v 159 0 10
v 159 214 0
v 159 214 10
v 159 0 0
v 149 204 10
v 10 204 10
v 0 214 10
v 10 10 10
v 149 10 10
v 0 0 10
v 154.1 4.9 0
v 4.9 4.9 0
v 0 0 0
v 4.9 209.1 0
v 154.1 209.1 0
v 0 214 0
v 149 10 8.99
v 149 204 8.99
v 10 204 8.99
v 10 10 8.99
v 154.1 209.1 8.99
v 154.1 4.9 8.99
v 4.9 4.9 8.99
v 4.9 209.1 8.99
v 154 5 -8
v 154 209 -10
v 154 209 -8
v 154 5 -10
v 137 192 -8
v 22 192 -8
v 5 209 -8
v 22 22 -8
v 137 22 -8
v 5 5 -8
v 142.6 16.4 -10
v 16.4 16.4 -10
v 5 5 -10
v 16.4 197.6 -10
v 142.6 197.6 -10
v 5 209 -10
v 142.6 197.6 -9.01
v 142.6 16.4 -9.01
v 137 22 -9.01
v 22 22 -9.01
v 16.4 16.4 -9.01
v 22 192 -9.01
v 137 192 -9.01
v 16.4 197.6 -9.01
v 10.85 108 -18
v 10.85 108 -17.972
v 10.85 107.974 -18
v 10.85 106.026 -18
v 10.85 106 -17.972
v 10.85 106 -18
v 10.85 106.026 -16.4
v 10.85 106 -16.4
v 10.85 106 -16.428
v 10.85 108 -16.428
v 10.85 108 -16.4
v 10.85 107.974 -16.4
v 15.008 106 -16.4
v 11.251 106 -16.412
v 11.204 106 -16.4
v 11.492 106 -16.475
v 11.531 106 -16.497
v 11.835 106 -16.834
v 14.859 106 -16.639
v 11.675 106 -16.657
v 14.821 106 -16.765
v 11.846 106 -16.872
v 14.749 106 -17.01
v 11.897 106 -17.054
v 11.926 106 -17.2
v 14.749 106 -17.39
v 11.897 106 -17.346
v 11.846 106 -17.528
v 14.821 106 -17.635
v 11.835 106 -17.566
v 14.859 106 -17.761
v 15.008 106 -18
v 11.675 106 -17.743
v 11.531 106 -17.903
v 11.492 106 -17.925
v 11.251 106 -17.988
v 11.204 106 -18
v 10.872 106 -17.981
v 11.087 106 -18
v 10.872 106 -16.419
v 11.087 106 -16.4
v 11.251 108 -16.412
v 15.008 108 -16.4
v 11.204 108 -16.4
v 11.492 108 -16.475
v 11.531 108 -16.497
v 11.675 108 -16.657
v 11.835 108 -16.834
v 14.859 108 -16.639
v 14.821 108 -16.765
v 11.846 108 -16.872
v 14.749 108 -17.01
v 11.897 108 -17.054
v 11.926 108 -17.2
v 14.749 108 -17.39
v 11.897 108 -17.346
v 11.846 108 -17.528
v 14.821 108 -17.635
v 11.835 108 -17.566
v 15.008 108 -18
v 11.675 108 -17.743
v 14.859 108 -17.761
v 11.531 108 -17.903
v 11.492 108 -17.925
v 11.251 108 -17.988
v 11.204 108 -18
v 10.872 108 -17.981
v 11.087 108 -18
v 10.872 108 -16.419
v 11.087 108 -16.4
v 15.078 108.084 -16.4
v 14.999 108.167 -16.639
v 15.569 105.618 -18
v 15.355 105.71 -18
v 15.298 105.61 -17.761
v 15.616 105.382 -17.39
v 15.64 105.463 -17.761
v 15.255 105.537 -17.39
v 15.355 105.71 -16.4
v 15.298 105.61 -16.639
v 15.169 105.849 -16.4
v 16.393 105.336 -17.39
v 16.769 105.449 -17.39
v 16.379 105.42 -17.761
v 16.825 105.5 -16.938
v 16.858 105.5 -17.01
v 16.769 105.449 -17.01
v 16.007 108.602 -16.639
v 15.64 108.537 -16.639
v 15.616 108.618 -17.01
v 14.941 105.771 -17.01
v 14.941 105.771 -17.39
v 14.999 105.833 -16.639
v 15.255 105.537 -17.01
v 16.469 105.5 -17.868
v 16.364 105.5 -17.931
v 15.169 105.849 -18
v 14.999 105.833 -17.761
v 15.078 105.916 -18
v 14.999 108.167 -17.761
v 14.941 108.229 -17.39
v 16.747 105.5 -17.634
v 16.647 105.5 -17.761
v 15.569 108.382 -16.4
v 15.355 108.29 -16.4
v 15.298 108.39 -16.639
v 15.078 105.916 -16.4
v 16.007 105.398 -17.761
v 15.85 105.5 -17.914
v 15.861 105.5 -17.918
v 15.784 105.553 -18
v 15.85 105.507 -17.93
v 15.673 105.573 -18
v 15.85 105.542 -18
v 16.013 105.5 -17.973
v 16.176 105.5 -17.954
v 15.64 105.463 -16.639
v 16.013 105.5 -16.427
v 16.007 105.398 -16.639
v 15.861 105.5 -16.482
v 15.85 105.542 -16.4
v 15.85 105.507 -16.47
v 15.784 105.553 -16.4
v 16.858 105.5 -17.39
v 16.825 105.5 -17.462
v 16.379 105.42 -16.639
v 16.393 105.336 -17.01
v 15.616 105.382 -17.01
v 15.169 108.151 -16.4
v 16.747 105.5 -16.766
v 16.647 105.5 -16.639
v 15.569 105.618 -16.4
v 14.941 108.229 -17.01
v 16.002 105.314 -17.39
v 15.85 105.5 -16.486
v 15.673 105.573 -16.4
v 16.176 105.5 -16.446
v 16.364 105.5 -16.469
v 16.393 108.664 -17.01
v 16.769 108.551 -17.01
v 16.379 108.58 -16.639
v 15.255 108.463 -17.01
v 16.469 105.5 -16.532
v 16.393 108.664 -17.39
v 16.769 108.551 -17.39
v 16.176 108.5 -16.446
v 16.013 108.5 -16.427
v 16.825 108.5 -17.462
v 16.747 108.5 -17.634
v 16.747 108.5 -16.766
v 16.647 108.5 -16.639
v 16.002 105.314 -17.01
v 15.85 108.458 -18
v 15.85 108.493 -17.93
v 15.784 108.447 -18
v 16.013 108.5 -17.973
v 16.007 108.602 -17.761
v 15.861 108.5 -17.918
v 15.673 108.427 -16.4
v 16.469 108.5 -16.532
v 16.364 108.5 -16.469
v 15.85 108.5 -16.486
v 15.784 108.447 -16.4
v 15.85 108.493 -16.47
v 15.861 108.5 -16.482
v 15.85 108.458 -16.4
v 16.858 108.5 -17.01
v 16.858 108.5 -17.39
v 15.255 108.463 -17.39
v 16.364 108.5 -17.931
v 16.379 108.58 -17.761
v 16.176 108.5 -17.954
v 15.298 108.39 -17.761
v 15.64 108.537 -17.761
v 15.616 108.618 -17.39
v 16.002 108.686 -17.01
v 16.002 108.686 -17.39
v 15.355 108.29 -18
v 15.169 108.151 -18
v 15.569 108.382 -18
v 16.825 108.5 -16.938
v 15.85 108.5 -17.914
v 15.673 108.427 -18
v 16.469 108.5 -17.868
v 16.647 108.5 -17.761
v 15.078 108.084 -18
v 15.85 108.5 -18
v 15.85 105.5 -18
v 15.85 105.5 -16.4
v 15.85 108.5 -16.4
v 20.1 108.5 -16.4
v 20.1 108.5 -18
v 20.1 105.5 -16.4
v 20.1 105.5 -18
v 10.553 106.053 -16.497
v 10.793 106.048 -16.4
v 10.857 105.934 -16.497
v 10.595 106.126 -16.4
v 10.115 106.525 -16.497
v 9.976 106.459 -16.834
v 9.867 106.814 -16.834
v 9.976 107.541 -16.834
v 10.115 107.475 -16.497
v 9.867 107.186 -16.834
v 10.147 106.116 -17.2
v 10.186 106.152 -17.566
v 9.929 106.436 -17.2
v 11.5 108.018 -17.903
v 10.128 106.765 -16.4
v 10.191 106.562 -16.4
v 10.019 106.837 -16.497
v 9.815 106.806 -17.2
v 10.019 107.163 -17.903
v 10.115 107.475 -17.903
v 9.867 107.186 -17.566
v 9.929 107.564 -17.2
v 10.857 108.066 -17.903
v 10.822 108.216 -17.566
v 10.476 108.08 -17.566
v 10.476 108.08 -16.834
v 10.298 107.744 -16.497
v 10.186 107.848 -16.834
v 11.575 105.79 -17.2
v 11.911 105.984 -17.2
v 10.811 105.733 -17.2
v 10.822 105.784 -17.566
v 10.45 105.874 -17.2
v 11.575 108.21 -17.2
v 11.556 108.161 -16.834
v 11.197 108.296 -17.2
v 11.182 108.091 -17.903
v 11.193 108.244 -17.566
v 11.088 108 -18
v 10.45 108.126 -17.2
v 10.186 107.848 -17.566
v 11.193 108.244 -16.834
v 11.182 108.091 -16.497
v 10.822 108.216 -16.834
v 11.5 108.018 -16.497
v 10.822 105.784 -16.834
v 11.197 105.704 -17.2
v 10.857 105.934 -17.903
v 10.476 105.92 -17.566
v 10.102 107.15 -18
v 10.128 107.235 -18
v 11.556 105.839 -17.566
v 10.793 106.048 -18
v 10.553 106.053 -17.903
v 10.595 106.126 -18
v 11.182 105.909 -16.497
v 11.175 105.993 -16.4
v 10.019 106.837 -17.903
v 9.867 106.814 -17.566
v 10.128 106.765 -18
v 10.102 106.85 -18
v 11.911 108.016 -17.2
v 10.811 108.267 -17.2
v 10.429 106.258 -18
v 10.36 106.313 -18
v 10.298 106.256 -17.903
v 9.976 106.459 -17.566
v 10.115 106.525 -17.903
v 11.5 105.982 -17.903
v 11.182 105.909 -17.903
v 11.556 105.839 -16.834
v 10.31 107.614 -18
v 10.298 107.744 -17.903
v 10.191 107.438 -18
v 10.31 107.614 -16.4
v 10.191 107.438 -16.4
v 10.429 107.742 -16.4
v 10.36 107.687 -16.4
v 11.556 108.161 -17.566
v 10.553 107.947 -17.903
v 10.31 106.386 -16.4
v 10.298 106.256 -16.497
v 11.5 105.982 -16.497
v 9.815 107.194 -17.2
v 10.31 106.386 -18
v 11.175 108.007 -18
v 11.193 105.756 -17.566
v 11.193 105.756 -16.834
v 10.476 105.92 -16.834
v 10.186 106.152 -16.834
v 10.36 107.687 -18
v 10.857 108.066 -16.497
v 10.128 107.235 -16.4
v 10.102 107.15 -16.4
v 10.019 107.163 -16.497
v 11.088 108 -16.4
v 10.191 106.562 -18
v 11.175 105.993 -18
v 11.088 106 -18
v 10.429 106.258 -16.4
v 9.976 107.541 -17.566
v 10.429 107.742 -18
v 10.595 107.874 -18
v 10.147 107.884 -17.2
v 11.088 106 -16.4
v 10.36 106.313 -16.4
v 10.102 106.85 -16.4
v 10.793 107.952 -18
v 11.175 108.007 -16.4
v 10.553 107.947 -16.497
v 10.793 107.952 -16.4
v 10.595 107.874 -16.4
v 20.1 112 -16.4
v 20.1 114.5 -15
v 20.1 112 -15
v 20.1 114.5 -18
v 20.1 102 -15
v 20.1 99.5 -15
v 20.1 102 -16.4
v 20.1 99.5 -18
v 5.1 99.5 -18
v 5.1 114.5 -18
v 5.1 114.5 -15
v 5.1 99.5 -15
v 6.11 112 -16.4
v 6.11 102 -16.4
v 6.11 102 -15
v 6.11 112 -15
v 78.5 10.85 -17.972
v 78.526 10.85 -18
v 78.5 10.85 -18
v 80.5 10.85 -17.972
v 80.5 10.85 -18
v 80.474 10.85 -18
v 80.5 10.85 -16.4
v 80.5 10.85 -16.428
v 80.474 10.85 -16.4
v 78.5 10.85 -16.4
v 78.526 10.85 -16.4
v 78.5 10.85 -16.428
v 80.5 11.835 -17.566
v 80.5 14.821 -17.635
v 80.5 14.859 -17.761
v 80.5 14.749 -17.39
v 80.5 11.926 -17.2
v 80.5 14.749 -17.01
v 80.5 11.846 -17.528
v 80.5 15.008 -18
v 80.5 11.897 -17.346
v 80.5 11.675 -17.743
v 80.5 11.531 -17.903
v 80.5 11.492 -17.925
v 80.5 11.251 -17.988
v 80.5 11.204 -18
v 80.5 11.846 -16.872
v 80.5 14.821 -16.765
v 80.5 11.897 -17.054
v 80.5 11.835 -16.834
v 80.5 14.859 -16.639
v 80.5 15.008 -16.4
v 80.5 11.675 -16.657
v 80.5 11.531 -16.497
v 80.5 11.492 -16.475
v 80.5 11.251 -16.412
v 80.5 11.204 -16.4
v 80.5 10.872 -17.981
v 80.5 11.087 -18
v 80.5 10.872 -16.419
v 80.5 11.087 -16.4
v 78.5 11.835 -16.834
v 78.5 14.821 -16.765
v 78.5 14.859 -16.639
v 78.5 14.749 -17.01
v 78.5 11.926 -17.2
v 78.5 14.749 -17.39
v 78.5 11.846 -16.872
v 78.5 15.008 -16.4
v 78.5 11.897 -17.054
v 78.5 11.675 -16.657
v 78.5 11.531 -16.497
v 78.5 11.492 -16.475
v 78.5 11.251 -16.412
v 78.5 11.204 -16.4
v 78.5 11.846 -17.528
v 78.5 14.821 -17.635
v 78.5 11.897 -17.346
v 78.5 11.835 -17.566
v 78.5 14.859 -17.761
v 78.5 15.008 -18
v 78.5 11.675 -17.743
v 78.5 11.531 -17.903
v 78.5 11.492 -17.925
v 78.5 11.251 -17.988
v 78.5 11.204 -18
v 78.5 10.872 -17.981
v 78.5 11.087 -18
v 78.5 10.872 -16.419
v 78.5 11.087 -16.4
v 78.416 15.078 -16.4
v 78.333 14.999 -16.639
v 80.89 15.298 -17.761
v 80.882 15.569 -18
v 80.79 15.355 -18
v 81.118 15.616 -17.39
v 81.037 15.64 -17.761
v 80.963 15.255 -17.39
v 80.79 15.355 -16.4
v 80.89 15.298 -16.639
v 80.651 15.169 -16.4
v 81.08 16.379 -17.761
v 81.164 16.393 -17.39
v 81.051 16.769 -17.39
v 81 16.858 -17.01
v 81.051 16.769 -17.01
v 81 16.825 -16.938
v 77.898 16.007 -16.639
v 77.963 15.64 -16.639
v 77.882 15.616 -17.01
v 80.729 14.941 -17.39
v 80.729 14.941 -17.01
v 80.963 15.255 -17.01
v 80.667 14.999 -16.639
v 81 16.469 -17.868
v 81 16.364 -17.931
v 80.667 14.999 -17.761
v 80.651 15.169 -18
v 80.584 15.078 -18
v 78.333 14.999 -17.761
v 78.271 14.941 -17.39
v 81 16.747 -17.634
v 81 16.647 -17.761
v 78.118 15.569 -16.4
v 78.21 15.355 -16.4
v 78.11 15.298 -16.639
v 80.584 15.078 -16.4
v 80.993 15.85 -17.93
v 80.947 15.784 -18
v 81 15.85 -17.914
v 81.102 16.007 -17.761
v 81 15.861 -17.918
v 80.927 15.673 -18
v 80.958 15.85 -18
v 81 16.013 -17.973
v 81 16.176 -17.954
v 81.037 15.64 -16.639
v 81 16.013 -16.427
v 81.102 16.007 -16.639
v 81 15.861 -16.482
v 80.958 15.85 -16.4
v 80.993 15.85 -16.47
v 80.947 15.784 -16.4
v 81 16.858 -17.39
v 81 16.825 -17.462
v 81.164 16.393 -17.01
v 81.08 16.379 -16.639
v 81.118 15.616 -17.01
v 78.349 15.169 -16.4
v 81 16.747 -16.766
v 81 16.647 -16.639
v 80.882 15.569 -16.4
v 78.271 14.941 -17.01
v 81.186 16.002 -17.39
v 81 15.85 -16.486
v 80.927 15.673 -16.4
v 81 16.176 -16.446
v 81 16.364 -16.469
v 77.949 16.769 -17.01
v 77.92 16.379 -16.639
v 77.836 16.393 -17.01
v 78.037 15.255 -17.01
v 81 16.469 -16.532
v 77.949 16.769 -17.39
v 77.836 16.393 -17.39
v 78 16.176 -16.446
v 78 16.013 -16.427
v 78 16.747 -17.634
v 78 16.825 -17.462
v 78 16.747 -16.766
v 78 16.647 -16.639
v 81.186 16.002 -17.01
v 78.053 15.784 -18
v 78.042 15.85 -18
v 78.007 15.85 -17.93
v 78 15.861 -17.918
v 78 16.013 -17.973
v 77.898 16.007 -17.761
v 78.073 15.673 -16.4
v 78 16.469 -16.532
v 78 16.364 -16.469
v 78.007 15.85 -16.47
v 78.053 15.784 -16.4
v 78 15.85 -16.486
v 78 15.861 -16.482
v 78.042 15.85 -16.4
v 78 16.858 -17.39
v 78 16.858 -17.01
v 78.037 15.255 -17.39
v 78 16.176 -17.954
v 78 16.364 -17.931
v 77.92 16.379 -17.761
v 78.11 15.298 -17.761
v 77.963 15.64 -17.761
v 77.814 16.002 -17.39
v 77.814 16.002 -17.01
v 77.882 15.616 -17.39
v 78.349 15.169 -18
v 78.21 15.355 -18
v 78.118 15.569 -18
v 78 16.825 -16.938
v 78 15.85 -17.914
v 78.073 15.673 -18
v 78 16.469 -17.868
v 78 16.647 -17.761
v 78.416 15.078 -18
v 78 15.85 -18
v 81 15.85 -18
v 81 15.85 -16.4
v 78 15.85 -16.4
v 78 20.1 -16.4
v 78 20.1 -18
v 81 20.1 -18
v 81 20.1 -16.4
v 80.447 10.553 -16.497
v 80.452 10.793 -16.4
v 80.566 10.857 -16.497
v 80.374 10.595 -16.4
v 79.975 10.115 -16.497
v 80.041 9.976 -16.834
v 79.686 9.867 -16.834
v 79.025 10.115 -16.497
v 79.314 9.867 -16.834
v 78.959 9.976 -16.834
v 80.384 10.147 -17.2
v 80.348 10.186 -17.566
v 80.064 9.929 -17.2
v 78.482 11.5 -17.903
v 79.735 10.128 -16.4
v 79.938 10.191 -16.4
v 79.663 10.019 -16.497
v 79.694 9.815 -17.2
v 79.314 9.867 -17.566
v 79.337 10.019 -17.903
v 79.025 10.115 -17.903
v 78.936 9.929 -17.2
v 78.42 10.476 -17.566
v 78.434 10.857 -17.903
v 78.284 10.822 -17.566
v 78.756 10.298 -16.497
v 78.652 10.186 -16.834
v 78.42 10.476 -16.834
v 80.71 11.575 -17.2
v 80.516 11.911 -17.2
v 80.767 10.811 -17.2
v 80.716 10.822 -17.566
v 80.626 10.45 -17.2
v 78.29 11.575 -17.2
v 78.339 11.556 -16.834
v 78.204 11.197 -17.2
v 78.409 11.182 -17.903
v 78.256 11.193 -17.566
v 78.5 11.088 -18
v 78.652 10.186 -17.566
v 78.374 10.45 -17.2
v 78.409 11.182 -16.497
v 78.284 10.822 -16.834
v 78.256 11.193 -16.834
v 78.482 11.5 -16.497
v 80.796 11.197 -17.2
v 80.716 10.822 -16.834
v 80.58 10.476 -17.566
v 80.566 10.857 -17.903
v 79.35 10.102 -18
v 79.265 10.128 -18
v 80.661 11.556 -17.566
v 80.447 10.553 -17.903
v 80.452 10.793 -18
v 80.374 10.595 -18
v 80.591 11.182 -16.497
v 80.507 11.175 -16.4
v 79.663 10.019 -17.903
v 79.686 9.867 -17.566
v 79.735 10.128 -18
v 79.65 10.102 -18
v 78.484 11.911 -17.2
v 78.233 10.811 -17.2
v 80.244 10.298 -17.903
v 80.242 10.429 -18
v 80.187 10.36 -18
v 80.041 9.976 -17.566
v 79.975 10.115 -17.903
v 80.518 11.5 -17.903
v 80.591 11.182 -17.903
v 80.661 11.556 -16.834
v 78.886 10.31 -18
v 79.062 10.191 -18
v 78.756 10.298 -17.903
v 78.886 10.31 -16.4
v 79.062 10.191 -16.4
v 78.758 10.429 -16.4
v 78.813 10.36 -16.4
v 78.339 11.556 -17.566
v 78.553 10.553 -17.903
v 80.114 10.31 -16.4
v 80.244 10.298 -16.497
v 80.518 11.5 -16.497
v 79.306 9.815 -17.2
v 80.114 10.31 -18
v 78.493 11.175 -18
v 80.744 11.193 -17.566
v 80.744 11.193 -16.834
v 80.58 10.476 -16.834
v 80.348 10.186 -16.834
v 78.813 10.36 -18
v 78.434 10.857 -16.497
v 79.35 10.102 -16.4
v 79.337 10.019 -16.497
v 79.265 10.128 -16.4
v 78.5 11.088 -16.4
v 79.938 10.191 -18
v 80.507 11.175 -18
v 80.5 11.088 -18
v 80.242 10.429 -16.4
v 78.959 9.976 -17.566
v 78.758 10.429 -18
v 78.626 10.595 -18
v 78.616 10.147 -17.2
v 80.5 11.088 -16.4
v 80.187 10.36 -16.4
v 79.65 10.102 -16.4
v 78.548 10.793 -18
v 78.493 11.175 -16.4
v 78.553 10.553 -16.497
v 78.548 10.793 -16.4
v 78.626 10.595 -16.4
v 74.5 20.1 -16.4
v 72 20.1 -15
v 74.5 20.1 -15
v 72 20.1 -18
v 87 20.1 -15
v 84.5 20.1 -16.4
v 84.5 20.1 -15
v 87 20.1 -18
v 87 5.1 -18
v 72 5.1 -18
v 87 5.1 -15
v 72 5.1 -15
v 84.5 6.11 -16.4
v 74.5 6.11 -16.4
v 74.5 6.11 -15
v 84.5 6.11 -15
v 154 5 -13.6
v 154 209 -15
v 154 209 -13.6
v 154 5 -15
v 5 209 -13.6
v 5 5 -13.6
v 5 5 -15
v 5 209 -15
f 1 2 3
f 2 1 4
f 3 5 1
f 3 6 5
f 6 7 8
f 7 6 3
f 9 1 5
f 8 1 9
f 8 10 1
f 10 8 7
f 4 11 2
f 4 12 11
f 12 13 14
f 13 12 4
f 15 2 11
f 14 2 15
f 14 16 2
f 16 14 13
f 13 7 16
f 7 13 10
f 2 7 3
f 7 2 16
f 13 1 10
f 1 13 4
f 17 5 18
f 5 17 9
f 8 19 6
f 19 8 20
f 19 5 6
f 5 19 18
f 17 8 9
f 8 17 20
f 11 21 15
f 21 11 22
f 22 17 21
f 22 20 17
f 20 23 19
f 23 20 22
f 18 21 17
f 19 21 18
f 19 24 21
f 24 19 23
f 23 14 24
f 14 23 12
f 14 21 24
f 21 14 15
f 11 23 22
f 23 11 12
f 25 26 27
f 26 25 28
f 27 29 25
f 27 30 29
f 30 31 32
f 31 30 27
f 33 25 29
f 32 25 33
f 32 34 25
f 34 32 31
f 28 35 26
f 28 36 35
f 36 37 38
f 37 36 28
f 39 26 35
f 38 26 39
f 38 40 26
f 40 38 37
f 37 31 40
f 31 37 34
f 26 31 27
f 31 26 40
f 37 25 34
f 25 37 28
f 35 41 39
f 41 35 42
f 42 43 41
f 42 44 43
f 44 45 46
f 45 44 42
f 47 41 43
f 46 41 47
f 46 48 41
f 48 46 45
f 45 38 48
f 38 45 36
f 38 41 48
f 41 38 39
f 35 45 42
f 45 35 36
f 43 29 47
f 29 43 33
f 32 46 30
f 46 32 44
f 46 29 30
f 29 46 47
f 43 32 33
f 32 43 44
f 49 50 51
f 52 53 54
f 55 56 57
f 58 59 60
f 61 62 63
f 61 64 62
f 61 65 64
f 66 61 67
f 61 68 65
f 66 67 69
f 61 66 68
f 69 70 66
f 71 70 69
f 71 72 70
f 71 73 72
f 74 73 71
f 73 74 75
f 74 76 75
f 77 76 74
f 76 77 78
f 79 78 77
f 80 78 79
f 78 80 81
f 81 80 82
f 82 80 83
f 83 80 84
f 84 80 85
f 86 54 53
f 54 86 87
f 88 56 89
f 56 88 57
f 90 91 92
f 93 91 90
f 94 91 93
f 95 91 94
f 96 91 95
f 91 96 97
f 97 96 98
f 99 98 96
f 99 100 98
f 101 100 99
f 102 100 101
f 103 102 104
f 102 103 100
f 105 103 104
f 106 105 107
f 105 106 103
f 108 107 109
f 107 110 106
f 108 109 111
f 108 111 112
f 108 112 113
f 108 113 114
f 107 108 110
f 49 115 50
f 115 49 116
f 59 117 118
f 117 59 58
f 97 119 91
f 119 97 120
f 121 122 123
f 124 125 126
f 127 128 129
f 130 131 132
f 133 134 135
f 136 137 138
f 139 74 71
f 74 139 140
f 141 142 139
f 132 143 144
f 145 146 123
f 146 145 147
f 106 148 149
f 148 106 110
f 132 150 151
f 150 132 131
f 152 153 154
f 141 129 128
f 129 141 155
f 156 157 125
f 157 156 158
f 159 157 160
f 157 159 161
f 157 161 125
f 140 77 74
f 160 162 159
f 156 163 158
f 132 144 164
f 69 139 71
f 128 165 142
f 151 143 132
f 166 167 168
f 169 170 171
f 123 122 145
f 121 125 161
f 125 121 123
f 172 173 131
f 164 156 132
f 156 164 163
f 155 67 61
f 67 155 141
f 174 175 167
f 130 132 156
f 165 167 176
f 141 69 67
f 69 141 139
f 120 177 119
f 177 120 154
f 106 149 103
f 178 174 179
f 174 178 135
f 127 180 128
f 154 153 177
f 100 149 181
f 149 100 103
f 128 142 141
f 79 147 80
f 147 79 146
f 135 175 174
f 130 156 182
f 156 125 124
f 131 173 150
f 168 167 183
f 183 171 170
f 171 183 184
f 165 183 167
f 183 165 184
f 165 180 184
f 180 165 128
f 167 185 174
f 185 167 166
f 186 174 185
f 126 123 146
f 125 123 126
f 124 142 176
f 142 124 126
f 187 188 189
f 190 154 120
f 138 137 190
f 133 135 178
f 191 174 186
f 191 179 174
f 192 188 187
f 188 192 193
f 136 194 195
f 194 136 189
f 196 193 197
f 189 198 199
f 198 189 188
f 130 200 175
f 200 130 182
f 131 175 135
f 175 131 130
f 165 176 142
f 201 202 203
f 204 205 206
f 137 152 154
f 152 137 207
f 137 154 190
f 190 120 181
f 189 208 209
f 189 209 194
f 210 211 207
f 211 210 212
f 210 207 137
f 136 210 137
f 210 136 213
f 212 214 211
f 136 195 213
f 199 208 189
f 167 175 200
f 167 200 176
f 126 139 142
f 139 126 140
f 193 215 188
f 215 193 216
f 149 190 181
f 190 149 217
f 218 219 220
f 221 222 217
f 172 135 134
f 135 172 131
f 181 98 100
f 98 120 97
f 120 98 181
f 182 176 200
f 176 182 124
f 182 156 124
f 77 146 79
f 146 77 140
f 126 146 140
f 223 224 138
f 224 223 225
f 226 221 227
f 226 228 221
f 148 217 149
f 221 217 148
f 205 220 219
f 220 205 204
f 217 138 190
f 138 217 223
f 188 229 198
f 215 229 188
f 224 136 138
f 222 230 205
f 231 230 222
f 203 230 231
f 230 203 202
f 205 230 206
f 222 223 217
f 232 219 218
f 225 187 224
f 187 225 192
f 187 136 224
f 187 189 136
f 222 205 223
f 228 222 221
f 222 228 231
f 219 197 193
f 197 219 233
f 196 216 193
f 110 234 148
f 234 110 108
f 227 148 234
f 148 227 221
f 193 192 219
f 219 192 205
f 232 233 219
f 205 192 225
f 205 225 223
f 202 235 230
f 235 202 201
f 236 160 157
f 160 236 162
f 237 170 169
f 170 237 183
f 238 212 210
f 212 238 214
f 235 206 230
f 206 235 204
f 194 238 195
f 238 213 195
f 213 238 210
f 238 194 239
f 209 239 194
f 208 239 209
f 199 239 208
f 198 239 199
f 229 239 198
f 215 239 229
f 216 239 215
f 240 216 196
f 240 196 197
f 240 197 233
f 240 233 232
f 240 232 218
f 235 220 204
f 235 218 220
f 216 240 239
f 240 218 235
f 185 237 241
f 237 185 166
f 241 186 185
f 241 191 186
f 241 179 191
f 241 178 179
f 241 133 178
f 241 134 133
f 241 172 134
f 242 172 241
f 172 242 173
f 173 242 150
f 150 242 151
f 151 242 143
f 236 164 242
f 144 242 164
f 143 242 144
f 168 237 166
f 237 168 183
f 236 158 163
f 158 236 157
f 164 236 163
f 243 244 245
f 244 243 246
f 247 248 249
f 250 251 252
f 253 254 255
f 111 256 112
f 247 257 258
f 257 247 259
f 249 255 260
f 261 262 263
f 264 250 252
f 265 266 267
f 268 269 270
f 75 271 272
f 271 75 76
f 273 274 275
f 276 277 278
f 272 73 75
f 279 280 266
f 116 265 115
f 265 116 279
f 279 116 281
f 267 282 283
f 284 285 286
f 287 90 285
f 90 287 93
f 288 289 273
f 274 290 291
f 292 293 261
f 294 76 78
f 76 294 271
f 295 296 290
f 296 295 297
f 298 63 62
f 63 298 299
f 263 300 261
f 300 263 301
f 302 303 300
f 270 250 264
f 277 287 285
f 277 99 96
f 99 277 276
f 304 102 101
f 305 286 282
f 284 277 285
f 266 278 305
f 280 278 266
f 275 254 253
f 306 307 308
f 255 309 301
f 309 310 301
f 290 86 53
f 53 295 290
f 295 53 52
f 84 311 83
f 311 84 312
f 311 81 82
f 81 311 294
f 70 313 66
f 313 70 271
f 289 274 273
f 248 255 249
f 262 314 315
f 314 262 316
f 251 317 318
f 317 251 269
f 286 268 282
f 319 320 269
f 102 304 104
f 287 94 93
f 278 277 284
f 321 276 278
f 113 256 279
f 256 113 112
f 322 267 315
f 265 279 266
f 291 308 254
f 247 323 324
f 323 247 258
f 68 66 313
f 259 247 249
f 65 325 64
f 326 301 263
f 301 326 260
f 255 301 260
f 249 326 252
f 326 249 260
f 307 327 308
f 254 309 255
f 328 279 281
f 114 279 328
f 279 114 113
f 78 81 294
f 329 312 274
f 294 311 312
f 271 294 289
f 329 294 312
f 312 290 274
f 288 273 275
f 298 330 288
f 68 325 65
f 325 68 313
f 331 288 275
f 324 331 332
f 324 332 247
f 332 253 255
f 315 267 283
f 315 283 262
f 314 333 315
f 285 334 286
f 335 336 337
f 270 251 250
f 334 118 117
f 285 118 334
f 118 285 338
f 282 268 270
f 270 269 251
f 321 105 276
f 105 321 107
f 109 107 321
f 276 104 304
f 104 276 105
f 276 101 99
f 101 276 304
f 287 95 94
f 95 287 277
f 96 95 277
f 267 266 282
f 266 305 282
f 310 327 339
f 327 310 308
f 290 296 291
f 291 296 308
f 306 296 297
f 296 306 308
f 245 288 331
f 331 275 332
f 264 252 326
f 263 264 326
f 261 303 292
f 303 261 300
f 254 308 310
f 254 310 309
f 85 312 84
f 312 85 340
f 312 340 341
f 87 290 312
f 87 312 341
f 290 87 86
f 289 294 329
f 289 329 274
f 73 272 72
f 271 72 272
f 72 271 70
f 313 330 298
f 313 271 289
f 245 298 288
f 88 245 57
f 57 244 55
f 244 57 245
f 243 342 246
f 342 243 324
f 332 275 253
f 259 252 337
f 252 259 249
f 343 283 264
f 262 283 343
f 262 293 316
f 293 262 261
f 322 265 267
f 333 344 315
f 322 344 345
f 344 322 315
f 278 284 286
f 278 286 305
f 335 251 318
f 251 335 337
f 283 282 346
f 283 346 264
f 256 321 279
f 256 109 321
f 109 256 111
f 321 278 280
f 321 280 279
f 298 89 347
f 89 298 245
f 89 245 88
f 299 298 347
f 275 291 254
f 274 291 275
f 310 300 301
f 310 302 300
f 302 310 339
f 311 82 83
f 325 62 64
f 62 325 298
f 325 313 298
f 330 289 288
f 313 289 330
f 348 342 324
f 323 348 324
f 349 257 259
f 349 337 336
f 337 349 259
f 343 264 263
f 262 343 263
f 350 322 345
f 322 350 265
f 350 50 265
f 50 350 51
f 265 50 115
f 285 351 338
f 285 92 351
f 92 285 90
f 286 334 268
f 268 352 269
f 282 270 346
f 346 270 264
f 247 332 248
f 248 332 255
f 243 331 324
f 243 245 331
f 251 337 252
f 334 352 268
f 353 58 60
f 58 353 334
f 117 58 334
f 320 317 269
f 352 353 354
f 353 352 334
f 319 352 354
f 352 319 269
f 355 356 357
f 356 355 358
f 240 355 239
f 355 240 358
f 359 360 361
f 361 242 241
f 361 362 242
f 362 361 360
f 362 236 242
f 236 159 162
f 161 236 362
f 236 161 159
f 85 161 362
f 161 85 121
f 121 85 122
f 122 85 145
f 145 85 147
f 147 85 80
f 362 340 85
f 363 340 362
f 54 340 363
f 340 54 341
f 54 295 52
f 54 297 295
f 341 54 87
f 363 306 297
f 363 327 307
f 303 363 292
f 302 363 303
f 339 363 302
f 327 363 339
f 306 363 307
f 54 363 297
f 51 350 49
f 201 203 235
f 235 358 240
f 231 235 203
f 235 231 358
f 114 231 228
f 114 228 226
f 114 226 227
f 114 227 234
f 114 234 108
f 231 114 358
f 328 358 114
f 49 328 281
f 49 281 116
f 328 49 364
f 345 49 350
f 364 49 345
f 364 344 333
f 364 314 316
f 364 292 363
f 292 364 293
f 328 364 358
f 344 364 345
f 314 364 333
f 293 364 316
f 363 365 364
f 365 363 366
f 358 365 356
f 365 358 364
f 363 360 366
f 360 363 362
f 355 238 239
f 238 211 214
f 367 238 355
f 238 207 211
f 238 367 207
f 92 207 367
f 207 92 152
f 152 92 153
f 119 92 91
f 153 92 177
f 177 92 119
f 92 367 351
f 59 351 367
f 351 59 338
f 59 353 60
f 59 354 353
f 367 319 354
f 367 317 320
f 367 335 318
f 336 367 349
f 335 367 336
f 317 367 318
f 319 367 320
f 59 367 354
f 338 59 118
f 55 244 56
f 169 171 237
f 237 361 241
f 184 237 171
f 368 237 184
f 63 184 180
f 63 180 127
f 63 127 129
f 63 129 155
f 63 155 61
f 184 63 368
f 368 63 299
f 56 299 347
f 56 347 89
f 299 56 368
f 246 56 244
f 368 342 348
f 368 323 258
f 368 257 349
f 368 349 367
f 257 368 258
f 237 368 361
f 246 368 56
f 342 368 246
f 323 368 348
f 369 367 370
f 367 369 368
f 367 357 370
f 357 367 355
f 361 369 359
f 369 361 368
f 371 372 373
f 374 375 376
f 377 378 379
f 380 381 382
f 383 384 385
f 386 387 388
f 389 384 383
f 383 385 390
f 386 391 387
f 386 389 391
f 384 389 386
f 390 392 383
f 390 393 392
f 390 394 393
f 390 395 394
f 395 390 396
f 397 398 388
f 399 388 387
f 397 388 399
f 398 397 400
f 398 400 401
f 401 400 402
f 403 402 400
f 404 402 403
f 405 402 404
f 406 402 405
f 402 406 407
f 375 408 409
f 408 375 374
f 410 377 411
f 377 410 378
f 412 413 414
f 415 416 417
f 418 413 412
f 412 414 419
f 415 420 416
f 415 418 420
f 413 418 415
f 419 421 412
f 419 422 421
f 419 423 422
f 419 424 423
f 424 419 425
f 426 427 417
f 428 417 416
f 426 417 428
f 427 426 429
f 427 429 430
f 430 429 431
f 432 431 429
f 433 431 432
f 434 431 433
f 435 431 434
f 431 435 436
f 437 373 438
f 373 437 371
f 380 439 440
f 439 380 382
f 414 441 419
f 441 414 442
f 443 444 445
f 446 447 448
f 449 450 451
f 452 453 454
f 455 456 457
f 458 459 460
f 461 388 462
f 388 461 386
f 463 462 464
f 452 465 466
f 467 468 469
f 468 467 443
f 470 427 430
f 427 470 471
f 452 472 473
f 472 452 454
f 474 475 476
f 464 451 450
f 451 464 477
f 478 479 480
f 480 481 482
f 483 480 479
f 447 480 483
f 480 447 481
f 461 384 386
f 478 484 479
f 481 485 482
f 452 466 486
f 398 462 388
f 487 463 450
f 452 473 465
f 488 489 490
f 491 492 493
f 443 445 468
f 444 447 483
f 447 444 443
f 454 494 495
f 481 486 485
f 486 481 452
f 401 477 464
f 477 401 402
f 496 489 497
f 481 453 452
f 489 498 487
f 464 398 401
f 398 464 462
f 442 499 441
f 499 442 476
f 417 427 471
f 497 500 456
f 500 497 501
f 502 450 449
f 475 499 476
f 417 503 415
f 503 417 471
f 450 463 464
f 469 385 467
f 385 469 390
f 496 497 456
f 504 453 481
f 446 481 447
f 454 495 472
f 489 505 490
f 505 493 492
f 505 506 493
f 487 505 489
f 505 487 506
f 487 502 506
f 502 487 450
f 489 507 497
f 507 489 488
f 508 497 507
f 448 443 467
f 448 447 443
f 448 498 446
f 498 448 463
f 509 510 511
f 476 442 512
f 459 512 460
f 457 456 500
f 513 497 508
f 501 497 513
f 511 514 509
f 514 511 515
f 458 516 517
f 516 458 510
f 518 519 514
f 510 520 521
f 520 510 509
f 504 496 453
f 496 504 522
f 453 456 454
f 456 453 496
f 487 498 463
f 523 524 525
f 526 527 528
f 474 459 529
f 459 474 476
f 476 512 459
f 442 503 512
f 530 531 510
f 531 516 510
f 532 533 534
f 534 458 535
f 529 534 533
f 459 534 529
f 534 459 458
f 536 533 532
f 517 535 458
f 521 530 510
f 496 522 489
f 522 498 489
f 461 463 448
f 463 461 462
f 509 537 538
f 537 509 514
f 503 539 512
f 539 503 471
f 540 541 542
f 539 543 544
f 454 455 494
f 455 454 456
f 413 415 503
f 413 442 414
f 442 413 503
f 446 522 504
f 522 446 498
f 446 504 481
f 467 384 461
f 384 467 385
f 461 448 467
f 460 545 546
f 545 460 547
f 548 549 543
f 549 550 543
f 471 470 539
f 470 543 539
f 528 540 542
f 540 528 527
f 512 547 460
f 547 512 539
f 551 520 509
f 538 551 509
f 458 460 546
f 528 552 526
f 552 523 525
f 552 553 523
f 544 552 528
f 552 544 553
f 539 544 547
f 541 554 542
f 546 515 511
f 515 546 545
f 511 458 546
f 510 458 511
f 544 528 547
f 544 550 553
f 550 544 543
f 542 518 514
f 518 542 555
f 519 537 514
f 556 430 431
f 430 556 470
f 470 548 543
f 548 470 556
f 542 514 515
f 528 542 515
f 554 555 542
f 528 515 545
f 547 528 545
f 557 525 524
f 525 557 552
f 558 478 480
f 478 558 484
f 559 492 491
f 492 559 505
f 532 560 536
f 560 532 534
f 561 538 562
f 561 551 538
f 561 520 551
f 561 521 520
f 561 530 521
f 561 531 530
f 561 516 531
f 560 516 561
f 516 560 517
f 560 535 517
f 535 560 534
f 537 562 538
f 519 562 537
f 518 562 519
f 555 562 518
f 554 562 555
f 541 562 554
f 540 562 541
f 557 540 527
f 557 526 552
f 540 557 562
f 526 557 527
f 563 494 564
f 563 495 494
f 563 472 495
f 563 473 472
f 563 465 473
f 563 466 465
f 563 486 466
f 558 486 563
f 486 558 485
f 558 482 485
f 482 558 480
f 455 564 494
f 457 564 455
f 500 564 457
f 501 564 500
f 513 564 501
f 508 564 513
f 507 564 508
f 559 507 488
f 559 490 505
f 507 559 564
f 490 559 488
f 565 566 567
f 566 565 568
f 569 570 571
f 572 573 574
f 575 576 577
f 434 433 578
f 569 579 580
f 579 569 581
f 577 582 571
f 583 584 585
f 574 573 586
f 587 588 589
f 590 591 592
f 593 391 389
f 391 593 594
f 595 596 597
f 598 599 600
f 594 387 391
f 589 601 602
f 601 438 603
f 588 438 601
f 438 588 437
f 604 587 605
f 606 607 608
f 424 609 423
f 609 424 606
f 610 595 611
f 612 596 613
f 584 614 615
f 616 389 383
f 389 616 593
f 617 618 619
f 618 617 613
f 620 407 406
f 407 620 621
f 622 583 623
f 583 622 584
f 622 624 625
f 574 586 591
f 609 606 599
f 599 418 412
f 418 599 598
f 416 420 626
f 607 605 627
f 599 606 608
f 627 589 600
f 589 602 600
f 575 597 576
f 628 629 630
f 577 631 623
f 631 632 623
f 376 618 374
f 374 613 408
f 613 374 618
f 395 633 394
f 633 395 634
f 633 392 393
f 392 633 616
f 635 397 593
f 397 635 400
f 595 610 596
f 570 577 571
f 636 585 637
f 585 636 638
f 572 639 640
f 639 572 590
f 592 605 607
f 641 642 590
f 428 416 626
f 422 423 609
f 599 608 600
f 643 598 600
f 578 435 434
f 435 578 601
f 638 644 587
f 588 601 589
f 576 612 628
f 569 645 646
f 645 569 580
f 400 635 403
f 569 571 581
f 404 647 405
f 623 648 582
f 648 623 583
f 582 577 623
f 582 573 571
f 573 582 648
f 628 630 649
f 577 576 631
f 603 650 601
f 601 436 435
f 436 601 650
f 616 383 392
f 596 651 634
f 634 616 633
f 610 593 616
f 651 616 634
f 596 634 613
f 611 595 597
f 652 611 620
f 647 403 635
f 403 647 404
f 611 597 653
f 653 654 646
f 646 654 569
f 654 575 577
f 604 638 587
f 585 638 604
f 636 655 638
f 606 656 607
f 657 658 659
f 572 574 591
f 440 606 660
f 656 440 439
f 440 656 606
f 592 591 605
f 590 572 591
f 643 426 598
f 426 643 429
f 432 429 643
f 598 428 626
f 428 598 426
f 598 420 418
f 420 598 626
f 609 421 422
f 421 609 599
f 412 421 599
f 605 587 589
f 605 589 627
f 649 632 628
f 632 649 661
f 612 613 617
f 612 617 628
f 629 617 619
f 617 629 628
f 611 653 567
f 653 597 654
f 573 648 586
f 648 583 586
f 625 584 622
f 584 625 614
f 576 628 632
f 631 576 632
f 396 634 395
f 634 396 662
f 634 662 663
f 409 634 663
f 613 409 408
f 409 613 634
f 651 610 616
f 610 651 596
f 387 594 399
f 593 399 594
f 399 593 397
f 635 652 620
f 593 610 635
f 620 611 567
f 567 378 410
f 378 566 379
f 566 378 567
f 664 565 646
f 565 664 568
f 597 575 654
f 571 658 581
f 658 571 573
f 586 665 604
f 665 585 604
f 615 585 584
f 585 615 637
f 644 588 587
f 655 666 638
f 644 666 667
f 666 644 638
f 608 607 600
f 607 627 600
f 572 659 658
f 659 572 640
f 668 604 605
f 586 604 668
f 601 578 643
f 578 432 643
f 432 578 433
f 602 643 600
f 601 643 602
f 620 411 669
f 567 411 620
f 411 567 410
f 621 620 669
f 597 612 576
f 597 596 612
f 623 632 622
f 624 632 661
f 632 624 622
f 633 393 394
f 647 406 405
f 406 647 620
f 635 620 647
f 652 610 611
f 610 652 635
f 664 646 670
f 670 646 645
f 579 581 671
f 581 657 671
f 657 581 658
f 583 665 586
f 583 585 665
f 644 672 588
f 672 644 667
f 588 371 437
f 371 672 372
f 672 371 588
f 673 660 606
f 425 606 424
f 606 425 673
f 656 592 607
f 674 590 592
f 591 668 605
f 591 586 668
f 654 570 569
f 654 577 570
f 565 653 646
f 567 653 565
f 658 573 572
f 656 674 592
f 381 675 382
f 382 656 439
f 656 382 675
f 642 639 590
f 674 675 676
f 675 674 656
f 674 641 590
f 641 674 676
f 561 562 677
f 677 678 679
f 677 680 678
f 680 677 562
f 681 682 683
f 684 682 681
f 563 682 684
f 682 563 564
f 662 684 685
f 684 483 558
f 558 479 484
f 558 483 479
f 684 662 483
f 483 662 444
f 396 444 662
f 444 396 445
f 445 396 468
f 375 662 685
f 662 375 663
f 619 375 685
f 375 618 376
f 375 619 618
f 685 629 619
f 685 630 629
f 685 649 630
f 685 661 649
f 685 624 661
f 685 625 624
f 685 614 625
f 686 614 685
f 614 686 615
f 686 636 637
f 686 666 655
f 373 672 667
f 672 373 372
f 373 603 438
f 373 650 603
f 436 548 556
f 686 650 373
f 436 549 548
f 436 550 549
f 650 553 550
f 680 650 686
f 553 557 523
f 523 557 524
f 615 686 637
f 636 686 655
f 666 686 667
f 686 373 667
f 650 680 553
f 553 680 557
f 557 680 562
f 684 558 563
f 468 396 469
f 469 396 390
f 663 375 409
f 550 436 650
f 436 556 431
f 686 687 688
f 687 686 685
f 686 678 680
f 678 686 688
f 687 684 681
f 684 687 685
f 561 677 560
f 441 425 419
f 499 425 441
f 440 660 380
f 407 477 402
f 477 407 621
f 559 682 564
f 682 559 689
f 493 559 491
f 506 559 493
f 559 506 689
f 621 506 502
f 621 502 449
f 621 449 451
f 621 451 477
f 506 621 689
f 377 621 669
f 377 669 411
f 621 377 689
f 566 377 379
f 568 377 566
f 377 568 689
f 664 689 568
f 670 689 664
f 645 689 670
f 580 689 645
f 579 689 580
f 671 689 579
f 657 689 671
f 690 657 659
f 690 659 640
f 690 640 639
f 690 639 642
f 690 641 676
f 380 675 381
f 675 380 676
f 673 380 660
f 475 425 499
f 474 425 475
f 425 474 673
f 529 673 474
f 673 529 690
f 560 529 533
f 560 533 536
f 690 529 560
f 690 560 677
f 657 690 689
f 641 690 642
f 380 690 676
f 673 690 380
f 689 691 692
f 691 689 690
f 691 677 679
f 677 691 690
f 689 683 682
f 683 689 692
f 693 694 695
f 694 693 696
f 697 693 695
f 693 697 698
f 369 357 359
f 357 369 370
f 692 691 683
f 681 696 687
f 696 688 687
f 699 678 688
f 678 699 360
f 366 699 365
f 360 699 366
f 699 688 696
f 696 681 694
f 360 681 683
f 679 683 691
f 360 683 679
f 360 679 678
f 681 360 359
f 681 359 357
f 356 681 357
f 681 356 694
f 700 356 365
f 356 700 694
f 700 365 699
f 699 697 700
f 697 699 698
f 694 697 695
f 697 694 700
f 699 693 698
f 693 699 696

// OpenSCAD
$fa = 1;
$fs = 0.4;

/* Public Variables */
PICTURE_SIZE = [125,180]; // 5"x7"
// PICTURE_SIZE = [50,50];
FRAME_WIDTH = 10;
FRAME_DEPTH = 10;
MOUNT_WIDTH = 12;
PRINT_BED_SIZE = [250, 210, 210];

/* Private Variables */
EPSILON = 0.01;
PICTURE_OVERLAP = 5;
TOLERANCE = 0.1;
PICTURE_TOLERANCE = 0.6;
INNER_FRAME_DEPTH = 1;
MOUNT_DEPTH = 2;
BACKING_DEPTH = 1.4;
V_PICTURE_SIZE = [PICTURE_SIZE[0] - 2*PICTURE_OVERLAP, PICTURE_SIZE[1] - 2*PICTURE_OVERLAP];


// https://www.printables.com/model/147875-the-photo-frame-one-file-no-supports
// https://www.printables.com/model/146825-tiny-photo-frame

// Sliding Dovetail Joint


module frame_front() {
  color("Goldenrod")
  difference() {
    cube([V_PICTURE_SIZE[0] + 2*FRAME_WIDTH + 2*MOUNT_WIDTH, V_PICTURE_SIZE[1] + 2*FRAME_WIDTH + 2*MOUNT_WIDTH, FRAME_DEPTH]);

    // visible opening
    translate([FRAME_WIDTH, FRAME_WIDTH, 0]) {
      cube([V_PICTURE_SIZE[0] + 2*MOUNT_WIDTH, V_PICTURE_SIZE[1] + 2*MOUNT_WIDTH, FRAME_DEPTH + INNER_FRAME_DEPTH]);
    }

    // backing slot
    translate([FRAME_WIDTH - PICTURE_OVERLAP - TOLERANCE, FRAME_WIDTH - PICTURE_OVERLAP - TOLERANCE, -EPSILON*2]) {
      cube([PICTURE_SIZE[0] + 2*MOUNT_WIDTH + 2*TOLERANCE, PICTURE_SIZE[1] + 2*MOUNT_WIDTH + 2*TOLERANCE, FRAME_DEPTH - INNER_FRAME_DEPTH + EPSILON]);
    }
  }

}

module frame_mount() {
  // distance = FRAME_DEPTH - INNER_FRAME_DEPTH - MOUNT_DEPTH;
  distance = -10;

  color("AntiqueWhite")
  difference() {
    translate([FRAME_WIDTH - PICTURE_OVERLAP, FRAME_WIDTH - PICTURE_OVERLAP, distance]) {
      cube([PICTURE_SIZE[0] + 2*MOUNT_WIDTH, PICTURE_SIZE[1] + 2*MOUNT_WIDTH, MOUNT_DEPTH]);
    }

    // mount inset
    translate([FRAME_WIDTH + MOUNT_WIDTH - PICTURE_OVERLAP - PICTURE_TOLERANCE, FRAME_WIDTH + MOUNT_WIDTH - PICTURE_OVERLAP - PICTURE_TOLERANCE, distance - EPSILON]) {
      cube([PICTURE_SIZE[0] + 2*PICTURE_TOLERANCE, PICTURE_SIZE[1] + 2*PICTURE_TOLERANCE, 1]);
    }

    // // visible opening
    translate([FRAME_WIDTH + MOUNT_WIDTH, FRAME_WIDTH + MOUNT_WIDTH, distance - EPSILON*2]) {
      cube([V_PICTURE_SIZE[0], V_PICTURE_SIZE[1], 4]);
    }
  }
}

module frame_back() {
  // distance = FRAME_DEPTH - INNER_FRAME_DEPTH - MOUNT_DEPTH - BACKING_DEPTH;
  distance = -15;

  handle_radius = 20;

  color("Slategrey")
  // difference() {
    translate([FRAME_WIDTH - PICTURE_OVERLAP, FRAME_WIDTH - PICTURE_OVERLAP, distance]) {
      cube([PICTURE_SIZE[0] + 2*MOUNT_WIDTH, PICTURE_SIZE[1] + 2*MOUNT_WIDTH, BACKING_DEPTH]);
    }
    // stand slots
    // for(i = [0 : 3]) {
    //   index = i % 2 == 0 ? 1 : 0;
    //   translate([V_PICTURE_SIZE[0] / 2 + FRAME_WIDTH + MOUNT_WIDTH, V_PICTURE_SIZE[1] / 2 + FRAME_WIDTH + MOUNT_WIDTH, distance - EPSILON]) {
    //     rotate([0,0,i * 90])
    //     translate([-1,handle_radius*2,0])
    //     cube([2, ((PICTURE_SIZE[index]/2) + MOUNT_WIDTH) - handle_radius*2, 2]);
    //   }
    // }
  // }

  // nail holes
  block_size = [15,15,4];
  inner_block_size = [block_size[0], block_size[1] - 5, block_size[2] - 1.6];
  hook_coords = [
    [FRAME_WIDTH/2 + TOLERANCE, V_PICTURE_SIZE[1]/2 + FRAME_WIDTH + MOUNT_WIDTH - block_size[1]/2, distance - 3],
    [V_PICTURE_SIZE[0]/2 + FRAME_WIDTH + MOUNT_WIDTH + block_size[1]/2, FRAME_WIDTH/2 + TOLERANCE, distance - 3]
  ];
  for(i = [0 : 1]) {
    translate(hook_coords[i]) {
      rotate([0,0,i*90]) {
        difference() {
          cube(block_size);
          translate([1+EPSILON,2.5, 1.6]) {
            cube(inner_block_size);
          }
          translate([block_size[0]*0.4, block_size[1]/2, 0.8]) {
          sphere(r=1.3);
          translate([5,0,0]) {
            rotate([0,90,0]) {
              cube([2,2,block_size[0]*0.7], center=true);
            }

            sphere(r=1.7);
            translate([5,0,0]) {
              rotate([0,90,0]) {
                cube([2,3,block_size[0]*0.7], center=true);
              }
            }
          }
        }
        }
      }
    }
  }

  // handle
  // height = FRAME_DEPTH - INNER_FRAME_DEPTH - BACKING_DEPTH;
  // color("Silver")
  // difference() {
  //   translate([V_PICTURE_SIZE[0] / 2 + FRAME_WIDTH + MOUNT_WIDTH, V_PICTURE_SIZE[1] / 2 + FRAME_WIDTH + MOUNT_WIDTH, distance - height + EPSILON]) {
  //     cylinder(h=height, r=handle_radius, center=false);
  //   }

  //   translate([V_PICTURE_SIZE[0] / 2 + FRAME_WIDTH + MOUNT_WIDTH, V_PICTURE_SIZE[1] / 2 + FRAME_WIDTH + MOUNT_WIDTH, distance - height/3]) {
  //     rotate_extrude($fa=10) translate([handle_radius,0,0]) circle(height/3);
  //   }
  // }
}

module main() {
  if (PICTURE_SIZE[0] + FRAME_WIDTH*2 + MOUNT_WIDTH*2 > PRINT_BED_SIZE[0] || PICTURE_SIZE[1] + FRAME_WIDTH*2 + MOUNT_WIDTH*2 > PRINT_BED_SIZE[0]) {
    assert(false, "Frame size is too large for the print bed.");
  }

  frame_front();

  frame_mount();

  frame_back();
}

main();
